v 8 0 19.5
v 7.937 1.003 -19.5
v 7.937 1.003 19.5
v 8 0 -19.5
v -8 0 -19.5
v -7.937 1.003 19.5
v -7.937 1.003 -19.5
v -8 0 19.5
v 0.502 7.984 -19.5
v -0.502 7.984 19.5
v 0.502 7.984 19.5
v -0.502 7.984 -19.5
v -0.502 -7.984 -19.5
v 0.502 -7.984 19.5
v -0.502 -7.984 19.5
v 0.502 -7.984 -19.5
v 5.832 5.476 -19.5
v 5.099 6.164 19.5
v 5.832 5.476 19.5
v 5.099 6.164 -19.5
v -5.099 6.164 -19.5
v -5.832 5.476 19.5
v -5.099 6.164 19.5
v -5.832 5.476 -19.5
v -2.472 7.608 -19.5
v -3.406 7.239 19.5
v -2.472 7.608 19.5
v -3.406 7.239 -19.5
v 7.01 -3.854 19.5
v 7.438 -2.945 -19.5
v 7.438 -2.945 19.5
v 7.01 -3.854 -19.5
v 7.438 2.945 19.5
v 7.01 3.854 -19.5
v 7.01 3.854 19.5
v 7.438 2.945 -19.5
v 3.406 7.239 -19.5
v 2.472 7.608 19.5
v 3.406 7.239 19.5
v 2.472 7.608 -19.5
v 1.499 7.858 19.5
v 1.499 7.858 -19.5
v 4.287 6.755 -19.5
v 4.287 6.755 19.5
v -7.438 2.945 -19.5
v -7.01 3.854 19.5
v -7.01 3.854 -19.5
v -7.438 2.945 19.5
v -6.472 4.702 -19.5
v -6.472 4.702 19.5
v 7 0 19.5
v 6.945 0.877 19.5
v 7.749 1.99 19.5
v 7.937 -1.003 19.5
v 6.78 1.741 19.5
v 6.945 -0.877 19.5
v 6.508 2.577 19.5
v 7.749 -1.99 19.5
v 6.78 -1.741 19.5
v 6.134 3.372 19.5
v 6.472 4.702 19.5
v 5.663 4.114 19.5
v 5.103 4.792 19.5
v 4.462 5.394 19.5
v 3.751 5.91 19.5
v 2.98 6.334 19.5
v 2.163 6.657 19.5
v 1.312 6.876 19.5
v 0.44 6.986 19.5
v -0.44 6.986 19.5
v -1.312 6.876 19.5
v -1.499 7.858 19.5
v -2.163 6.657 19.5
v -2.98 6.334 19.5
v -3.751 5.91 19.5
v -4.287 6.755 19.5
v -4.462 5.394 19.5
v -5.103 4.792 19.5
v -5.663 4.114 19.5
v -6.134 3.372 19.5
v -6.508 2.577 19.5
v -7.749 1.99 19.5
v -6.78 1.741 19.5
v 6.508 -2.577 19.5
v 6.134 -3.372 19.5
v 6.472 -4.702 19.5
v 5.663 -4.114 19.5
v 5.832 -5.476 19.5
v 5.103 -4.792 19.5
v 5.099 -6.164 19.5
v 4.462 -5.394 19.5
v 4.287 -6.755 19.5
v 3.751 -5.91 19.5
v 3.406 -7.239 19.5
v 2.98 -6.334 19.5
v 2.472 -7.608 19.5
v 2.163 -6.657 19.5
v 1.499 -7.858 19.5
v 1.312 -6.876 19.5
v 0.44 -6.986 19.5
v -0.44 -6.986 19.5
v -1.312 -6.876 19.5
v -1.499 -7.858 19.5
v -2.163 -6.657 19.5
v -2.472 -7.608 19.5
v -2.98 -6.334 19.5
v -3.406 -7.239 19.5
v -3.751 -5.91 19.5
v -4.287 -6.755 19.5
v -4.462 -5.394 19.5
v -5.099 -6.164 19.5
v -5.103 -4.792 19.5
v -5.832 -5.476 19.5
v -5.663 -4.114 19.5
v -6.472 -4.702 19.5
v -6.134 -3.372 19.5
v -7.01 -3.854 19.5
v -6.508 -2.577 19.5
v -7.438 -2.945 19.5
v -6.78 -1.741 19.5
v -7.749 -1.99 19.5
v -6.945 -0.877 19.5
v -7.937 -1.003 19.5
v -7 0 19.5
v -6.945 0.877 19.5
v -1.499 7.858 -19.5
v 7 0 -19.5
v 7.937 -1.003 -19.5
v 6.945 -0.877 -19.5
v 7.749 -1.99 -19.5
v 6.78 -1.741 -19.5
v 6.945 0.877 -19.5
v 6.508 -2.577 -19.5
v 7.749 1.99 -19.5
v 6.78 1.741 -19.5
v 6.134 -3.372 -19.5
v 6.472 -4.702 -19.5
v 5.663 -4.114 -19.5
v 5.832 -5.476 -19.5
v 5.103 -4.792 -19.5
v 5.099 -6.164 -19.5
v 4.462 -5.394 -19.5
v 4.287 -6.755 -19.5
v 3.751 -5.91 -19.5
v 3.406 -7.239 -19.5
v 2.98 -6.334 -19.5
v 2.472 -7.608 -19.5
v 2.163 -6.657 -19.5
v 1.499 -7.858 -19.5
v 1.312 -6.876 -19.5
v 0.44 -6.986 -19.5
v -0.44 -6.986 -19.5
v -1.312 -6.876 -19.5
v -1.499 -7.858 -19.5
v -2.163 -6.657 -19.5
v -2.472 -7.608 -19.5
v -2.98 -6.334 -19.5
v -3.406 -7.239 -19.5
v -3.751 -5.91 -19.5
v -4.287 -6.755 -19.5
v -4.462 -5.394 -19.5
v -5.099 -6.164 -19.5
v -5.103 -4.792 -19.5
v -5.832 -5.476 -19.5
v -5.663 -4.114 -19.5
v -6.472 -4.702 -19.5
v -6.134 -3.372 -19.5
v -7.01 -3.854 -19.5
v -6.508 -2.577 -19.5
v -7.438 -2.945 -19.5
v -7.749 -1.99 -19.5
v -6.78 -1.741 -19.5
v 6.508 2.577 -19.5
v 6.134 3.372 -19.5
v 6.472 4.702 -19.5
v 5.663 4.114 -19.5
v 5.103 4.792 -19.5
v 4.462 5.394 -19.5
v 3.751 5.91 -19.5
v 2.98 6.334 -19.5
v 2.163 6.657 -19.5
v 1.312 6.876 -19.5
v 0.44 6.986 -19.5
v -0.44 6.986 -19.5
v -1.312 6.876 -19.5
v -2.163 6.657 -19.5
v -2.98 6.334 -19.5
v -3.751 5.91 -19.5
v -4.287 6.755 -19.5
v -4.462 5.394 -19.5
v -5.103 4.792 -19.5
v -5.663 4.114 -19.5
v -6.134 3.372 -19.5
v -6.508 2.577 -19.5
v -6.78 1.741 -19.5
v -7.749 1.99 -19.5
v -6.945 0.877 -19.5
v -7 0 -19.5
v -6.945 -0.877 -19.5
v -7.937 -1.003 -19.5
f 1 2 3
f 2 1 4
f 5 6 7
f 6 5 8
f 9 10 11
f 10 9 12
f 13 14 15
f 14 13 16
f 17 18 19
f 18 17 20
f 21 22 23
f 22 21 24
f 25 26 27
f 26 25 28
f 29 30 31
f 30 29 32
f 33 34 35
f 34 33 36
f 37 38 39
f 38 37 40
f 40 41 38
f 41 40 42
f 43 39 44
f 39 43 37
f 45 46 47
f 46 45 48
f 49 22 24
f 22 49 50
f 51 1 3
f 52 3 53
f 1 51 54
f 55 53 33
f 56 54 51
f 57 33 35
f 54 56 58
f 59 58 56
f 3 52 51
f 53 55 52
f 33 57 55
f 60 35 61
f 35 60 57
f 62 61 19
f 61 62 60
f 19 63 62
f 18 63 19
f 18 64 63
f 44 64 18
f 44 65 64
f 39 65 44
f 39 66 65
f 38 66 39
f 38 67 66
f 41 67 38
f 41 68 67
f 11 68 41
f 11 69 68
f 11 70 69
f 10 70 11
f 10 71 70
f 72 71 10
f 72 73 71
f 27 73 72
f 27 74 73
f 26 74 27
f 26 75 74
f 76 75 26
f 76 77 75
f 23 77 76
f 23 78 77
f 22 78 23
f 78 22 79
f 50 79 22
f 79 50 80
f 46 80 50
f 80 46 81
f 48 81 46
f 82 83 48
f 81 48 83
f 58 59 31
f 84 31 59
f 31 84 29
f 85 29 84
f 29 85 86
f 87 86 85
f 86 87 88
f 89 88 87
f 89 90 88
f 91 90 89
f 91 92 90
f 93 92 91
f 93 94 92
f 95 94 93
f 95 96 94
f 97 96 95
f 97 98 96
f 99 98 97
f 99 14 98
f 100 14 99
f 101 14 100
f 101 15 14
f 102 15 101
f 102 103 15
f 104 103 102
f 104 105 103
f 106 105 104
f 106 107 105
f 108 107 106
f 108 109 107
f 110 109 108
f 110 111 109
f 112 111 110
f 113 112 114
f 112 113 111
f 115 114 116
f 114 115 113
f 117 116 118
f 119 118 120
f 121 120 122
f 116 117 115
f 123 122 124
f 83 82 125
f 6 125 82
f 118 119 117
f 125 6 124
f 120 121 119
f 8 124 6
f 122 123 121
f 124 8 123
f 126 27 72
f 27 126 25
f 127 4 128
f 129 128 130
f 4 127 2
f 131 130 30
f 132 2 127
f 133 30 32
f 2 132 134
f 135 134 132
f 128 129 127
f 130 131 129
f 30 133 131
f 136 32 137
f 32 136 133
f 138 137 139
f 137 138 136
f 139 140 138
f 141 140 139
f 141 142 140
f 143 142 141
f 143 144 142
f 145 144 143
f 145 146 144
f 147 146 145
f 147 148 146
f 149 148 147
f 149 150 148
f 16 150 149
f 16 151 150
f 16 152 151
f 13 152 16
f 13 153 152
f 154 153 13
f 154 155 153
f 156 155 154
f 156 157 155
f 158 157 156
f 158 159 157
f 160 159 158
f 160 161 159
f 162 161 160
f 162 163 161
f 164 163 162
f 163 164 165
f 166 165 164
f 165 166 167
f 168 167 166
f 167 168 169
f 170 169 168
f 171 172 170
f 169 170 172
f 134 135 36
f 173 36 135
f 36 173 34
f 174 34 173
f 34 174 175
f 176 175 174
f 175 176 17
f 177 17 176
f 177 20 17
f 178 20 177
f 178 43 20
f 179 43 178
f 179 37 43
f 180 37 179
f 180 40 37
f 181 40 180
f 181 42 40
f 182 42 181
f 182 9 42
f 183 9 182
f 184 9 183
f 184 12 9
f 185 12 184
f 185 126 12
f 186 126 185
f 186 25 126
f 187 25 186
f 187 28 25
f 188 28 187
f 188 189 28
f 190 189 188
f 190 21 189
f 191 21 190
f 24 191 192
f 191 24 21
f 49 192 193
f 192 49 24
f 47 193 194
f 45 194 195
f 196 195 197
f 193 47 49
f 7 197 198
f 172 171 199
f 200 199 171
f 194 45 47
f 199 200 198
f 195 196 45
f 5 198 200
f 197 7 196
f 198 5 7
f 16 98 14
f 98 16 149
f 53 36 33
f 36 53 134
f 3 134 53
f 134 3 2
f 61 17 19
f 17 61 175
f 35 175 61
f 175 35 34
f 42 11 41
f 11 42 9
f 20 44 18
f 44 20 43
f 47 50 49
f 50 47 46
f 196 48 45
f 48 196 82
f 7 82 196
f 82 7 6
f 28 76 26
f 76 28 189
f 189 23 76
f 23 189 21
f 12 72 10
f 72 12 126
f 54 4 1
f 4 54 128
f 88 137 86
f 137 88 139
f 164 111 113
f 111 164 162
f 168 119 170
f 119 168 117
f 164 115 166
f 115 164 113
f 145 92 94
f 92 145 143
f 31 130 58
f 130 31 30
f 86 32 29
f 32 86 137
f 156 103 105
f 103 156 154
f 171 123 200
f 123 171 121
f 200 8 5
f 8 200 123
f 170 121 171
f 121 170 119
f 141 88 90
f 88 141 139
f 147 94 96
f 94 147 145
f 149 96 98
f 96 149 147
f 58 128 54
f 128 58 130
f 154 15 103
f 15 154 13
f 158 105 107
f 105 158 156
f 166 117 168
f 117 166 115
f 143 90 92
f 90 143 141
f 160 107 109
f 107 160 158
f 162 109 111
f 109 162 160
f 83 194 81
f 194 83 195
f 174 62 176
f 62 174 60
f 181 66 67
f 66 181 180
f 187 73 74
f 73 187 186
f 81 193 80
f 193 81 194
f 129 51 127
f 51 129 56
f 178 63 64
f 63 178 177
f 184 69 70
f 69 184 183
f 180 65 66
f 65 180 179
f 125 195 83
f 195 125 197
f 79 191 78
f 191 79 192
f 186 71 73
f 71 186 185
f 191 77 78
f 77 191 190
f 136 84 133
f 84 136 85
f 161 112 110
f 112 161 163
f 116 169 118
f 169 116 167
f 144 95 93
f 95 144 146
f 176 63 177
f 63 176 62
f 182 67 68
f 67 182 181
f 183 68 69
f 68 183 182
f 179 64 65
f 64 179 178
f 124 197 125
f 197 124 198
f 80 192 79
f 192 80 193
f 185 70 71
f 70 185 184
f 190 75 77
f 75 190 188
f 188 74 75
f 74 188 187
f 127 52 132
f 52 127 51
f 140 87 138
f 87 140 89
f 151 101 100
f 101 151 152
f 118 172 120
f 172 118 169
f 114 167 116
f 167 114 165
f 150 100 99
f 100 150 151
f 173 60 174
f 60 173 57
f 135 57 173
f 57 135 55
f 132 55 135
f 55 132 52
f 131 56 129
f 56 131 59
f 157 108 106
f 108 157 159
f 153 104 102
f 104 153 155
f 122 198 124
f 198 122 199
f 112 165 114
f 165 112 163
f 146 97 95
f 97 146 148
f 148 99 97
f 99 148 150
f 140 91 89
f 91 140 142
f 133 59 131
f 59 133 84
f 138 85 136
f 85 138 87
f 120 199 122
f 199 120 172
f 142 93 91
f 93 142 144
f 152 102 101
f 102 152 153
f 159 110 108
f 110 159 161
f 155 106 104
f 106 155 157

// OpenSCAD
$fn = 50;


difference() {
	union() {
		translate(v = [0, 0, -19.5000000000]) {
			cylinder(h = 39, r = 8.0000000000);
		}
	}
	union() {
		translate(v = [0, 0, -100.0000000000]) {
			cylinder(h = 200, r = 7);
		}
	}
}
